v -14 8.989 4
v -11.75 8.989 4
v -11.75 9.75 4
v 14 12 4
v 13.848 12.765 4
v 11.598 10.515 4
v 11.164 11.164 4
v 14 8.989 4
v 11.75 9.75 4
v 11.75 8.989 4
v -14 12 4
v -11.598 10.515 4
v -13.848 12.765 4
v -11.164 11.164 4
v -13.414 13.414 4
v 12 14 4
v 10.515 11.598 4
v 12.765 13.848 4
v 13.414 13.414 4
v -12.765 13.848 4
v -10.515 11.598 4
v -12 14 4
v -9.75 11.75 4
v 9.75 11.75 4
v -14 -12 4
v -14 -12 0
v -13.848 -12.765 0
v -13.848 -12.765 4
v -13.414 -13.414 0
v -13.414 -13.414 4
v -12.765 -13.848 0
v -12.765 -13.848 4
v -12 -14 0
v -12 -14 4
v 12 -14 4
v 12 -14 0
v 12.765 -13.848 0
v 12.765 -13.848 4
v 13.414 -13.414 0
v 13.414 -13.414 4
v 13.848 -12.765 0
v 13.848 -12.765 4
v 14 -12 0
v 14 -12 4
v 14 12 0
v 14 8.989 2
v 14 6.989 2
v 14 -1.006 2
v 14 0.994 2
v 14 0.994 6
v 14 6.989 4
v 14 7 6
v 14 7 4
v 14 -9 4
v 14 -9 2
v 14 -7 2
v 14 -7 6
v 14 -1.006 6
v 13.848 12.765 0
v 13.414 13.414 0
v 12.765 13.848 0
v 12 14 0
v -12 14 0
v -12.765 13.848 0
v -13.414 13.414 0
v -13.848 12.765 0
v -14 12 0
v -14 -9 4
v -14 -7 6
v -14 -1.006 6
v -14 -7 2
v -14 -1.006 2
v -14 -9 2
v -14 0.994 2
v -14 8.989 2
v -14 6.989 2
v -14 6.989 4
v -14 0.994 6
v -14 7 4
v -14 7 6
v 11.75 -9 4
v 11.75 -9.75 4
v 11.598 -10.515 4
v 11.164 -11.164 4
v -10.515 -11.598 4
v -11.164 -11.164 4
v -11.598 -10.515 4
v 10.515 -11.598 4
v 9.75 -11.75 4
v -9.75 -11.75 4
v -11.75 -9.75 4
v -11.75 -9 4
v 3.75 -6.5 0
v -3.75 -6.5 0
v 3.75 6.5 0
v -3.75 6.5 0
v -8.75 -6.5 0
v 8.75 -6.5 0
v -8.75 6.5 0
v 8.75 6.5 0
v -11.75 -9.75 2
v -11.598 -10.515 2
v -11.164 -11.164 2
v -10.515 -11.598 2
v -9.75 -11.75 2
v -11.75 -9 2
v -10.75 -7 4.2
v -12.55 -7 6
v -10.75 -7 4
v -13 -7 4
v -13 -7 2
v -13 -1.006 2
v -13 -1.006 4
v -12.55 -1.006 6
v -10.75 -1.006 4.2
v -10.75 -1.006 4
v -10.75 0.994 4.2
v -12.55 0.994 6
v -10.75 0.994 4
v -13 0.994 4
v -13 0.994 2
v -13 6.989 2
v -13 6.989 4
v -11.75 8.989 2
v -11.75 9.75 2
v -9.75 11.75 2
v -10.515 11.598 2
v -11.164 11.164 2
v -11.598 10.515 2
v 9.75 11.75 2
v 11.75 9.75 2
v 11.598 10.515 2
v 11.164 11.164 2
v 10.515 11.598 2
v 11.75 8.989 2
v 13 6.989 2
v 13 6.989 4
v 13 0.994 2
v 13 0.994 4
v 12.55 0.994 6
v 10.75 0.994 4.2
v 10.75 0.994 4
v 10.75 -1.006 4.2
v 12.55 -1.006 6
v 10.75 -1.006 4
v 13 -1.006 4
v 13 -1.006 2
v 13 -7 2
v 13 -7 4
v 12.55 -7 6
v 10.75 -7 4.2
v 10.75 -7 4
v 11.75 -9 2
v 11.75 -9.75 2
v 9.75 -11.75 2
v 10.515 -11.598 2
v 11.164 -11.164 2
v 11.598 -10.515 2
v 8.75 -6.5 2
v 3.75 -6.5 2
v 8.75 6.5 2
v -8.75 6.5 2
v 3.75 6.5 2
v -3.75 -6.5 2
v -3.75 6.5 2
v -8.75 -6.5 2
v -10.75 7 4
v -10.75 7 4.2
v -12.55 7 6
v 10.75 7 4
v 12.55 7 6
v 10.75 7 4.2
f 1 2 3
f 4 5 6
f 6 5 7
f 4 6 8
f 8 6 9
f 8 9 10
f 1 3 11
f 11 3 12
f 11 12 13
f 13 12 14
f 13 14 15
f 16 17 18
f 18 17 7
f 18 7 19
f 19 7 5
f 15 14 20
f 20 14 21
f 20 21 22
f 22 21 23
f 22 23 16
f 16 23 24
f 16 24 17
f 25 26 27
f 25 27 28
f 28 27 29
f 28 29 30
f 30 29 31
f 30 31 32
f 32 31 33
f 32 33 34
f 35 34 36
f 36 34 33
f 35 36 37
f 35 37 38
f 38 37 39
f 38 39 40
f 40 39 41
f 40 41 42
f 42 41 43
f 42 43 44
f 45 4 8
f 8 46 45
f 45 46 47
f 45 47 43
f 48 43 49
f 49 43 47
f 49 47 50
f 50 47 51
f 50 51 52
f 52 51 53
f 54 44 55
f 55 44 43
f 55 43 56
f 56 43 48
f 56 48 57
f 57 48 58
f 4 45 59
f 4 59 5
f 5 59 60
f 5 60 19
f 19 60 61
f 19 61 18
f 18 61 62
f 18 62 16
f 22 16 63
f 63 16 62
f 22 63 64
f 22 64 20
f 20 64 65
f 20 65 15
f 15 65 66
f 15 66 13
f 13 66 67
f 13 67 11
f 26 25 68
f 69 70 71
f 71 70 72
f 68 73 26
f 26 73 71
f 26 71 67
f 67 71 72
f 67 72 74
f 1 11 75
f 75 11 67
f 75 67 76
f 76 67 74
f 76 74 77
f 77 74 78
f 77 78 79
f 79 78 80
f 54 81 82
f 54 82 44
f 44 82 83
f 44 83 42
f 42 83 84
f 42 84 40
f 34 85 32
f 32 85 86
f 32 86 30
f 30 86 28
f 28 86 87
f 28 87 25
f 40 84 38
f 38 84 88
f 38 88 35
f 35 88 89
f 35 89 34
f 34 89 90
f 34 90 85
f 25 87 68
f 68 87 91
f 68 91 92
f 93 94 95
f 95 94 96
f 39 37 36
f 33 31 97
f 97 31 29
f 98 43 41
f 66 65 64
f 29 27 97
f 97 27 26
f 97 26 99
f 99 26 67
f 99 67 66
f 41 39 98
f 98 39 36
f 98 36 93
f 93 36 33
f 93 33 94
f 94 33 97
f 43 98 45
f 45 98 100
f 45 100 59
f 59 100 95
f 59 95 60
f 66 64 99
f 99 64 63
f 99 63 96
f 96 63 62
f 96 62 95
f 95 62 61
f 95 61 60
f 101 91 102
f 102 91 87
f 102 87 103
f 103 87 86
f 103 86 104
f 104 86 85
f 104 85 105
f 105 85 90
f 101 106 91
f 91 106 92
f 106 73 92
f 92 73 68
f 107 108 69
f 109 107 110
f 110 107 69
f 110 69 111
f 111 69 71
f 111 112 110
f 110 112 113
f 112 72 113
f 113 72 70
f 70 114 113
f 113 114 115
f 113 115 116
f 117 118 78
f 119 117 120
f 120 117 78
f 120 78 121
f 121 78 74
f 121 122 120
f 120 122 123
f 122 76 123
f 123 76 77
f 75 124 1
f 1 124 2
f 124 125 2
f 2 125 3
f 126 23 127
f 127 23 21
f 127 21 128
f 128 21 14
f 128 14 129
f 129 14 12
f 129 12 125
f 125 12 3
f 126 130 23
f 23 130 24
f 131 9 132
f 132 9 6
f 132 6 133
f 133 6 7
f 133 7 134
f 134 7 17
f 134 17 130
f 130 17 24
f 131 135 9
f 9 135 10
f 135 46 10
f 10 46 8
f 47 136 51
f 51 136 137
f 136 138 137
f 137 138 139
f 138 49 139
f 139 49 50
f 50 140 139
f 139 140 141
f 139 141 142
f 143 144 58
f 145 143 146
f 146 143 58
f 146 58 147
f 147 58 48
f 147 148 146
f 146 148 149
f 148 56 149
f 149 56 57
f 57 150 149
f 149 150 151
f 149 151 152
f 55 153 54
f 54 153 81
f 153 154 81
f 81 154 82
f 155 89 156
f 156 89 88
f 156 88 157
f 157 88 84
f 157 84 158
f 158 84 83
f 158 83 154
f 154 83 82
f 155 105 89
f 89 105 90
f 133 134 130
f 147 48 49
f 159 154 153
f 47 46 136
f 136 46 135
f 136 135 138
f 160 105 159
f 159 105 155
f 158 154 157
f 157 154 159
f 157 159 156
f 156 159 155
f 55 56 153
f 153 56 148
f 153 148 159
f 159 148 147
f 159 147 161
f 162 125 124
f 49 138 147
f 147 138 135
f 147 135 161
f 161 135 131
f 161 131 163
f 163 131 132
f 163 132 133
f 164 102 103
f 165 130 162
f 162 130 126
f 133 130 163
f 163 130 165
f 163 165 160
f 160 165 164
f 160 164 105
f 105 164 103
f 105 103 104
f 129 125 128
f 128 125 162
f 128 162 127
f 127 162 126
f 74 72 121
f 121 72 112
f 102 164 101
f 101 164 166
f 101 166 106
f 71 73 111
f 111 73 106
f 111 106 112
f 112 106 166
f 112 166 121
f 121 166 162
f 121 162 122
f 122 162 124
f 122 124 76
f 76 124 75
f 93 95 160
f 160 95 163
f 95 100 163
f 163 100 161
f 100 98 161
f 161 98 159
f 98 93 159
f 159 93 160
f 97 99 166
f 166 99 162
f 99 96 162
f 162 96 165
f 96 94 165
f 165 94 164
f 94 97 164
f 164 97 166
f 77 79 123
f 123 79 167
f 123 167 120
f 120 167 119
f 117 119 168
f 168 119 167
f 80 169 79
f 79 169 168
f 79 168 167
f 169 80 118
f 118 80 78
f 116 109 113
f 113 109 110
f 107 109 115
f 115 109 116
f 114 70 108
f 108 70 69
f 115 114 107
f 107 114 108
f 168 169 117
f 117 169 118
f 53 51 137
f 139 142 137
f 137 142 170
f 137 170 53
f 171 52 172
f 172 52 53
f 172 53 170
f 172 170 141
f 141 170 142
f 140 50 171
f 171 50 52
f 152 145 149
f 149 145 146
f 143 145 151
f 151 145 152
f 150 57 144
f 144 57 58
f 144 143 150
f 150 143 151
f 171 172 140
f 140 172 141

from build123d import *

# Parameters (mm, degrees)
BOSS_EXTRU_1_DEPTH           = 4
ENL_V_MAT_EXTRU_1_DEPTH      = 2
ESQUISSE3_W                  = 5
ESQUISSE3_H                  = 13
ENL_V_MAT_EXTRU_2_DEPTH      = 20.899748742
ESQUISSE4_W                  = 3.25
ESQUISSE4_H                  = 5.994249795
ESQUISSE4_H_2                = 6.005750205
BOSS_EXTRU_2_DEPTH           = 2
CHANFREIN3_SIZE              = 1.8
CHANFREIN3_OF_SYM_TRIE1_SIZE = 1.8


with BuildPart() as part:
    # Esquisse1 → Boss.-Extru.1 (new body)
    with BuildSketch(Plane.XY):
        with BuildLine():
            Line((12, -14), (-12, -14))
            ThreePointArc((-12, -14), (-13.414213562, -13.414213562), (-14, -12))
            Line((-14, -12), (-14, 12))
            ThreePointArc((-14, 12), (-13.414213562, 13.414213562), (-12, 14))
            Line((-12, 14), (12, 14))
            ThreePointArc((12, 14), (13.414213562, 13.414213562), (14, 12))
            Line((14, 12), (14, -12))
            ThreePointArc((14, -12), (13.414213562, -13.414213562), (12, -14))
        make_face()
    extrude(amount=BOSS_EXTRU_1_DEPTH)

    # Esquisse2 → Enlèv. mat.-Extru.1 (cut)
    with BuildSketch(Plane.XY.offset(4)):
        with BuildLine():
            Line((-9.75, -11.75), (9.75, -11.75))
            ThreePointArc((9.75, -11.75), (11.164213562, -11.164213562), (11.75, -9.75))
            Line((11.75, -9.75), (11.75, -9))
            Line((11.75, -9), (14, -9))
            Line((14, -9), (14, -7))
            Line((14, -7), (13, -7))
            Line((13, -7), (13, -1.005750205))
            Line((13, -1.005750205), (14, -1.005750205))
            Line((14, -1.005750205), (14, 0.994249795))
            Line((14, 0.994249795), (13, 0.994249795))
            Line((13, 0.994249795), (13, 6.988499589))
            Line((13, 6.988499589), (14, 6.988499589))
            Line((14, 6.988499589), (14, 8.988499589))
            Line((14, 8.988499589), (11.75, 8.988499589))
            Line((11.75, 8.988499589), (11.75, 9.75))
            ThreePointArc((11.75, 9.75), (11.164213562, 11.164213562), (9.75, 11.75))
            Line((9.75, 11.75), (-9.75, 11.75))
            ThreePointArc((-9.75, 11.75), (-11.164213562, 11.164213562), (-11.75, 9.75))
            Line((-11.75, 9.75), (-11.75, 8.988499589))
            Line((-11.75, 8.988499589), (-14, 8.988499589))
            Line((-14, 8.988499589), (-14, 6.988499589))
            Line((-14, 6.988499589), (-13, 6.988499589))
            Line((-13, 6.988499589), (-13, 0.994249795))
            Line((-13, 0.994249795), (-14, 0.994249795))
            Line((-14, 0.994249795), (-14, -1.005750205))
            Line((-14, -1.005750205), (-13, -1.005750205))
            Line((-13, -1.005750205), (-13, -7))
            Line((-13, -7), (-14, -7))
            Line((-14, -7), (-14, -9))
            Line((-14, -9), (-11.75, -9))
            Line((-11.75, -9), (-11.75, -9.75))
            ThreePointArc((-11.75, -9.75), (-11.164213562, -11.164213562), (-9.75, -11.75))
        make_face()
    extrude(amount=-ENL_V_MAT_EXTRU_1_DEPTH, mode=Mode.SUBTRACT)

    # Esquisse3 → Enlèv. mat.-Extru.2 (cut, through all)
    with BuildSketch(Plane.XY.offset(2)):
        with Locations((-6.25, 0)):
            Rectangle(ESQUISSE3_W, ESQUISSE3_H)
        with Locations((6.25, 0)):
            Rectangle(ESQUISSE3_W, ESQUISSE3_H)
    extrude(amount=-ENL_V_MAT_EXTRU_2_DEPTH, mode=Mode.SUBTRACT)

    # Esquisse4 → Boss.-Extru.2 (add)
    with BuildSketch(Plane.XY.offset(4)):
        with Locations((-12.375, -4.002875103)):
            Rectangle(ESQUISSE4_W, ESQUISSE4_H)
        with Locations((-12.375, 3.997124897)):
            Rectangle(ESQUISSE4_W, ESQUISSE4_H_2)
    boss_extru_2 = extrude(amount=BOSS_EXTRU_2_DEPTH)

    # Chanfrein3
    chanfrein3_edges = [part.edges().sort_by_distance(p)[0] for p in [
        (-10.75, 3.997124897, 6),
        (-10.75, -4.002875103, 6),
    ]]
    chamfer(chanfrein3_edges, length=CHANFREIN3_SIZE)

    # Symétrie1: Boss.-Extru.2 across plane
    add(boss_extru_2.mirror(Plane(origin=(0, 0, 0), x_dir=(0, 0, 1), z_dir=(1, 0, 0))))

    # Chanfrein3 of Symétrie1
    chanfrein3_of_sym_trie1_edges = [part.edges().sort_by_distance(p)[0] for p in [
        (10.75, 3.997124897, 6),
        (10.75, -4.002875103, 6),
    ]]
    chamfer(chanfrein3_of_sym_trie1_edges, length=CHANFREIN3_OF_SYM_TRIE1_SIZE)


solid = part.part
